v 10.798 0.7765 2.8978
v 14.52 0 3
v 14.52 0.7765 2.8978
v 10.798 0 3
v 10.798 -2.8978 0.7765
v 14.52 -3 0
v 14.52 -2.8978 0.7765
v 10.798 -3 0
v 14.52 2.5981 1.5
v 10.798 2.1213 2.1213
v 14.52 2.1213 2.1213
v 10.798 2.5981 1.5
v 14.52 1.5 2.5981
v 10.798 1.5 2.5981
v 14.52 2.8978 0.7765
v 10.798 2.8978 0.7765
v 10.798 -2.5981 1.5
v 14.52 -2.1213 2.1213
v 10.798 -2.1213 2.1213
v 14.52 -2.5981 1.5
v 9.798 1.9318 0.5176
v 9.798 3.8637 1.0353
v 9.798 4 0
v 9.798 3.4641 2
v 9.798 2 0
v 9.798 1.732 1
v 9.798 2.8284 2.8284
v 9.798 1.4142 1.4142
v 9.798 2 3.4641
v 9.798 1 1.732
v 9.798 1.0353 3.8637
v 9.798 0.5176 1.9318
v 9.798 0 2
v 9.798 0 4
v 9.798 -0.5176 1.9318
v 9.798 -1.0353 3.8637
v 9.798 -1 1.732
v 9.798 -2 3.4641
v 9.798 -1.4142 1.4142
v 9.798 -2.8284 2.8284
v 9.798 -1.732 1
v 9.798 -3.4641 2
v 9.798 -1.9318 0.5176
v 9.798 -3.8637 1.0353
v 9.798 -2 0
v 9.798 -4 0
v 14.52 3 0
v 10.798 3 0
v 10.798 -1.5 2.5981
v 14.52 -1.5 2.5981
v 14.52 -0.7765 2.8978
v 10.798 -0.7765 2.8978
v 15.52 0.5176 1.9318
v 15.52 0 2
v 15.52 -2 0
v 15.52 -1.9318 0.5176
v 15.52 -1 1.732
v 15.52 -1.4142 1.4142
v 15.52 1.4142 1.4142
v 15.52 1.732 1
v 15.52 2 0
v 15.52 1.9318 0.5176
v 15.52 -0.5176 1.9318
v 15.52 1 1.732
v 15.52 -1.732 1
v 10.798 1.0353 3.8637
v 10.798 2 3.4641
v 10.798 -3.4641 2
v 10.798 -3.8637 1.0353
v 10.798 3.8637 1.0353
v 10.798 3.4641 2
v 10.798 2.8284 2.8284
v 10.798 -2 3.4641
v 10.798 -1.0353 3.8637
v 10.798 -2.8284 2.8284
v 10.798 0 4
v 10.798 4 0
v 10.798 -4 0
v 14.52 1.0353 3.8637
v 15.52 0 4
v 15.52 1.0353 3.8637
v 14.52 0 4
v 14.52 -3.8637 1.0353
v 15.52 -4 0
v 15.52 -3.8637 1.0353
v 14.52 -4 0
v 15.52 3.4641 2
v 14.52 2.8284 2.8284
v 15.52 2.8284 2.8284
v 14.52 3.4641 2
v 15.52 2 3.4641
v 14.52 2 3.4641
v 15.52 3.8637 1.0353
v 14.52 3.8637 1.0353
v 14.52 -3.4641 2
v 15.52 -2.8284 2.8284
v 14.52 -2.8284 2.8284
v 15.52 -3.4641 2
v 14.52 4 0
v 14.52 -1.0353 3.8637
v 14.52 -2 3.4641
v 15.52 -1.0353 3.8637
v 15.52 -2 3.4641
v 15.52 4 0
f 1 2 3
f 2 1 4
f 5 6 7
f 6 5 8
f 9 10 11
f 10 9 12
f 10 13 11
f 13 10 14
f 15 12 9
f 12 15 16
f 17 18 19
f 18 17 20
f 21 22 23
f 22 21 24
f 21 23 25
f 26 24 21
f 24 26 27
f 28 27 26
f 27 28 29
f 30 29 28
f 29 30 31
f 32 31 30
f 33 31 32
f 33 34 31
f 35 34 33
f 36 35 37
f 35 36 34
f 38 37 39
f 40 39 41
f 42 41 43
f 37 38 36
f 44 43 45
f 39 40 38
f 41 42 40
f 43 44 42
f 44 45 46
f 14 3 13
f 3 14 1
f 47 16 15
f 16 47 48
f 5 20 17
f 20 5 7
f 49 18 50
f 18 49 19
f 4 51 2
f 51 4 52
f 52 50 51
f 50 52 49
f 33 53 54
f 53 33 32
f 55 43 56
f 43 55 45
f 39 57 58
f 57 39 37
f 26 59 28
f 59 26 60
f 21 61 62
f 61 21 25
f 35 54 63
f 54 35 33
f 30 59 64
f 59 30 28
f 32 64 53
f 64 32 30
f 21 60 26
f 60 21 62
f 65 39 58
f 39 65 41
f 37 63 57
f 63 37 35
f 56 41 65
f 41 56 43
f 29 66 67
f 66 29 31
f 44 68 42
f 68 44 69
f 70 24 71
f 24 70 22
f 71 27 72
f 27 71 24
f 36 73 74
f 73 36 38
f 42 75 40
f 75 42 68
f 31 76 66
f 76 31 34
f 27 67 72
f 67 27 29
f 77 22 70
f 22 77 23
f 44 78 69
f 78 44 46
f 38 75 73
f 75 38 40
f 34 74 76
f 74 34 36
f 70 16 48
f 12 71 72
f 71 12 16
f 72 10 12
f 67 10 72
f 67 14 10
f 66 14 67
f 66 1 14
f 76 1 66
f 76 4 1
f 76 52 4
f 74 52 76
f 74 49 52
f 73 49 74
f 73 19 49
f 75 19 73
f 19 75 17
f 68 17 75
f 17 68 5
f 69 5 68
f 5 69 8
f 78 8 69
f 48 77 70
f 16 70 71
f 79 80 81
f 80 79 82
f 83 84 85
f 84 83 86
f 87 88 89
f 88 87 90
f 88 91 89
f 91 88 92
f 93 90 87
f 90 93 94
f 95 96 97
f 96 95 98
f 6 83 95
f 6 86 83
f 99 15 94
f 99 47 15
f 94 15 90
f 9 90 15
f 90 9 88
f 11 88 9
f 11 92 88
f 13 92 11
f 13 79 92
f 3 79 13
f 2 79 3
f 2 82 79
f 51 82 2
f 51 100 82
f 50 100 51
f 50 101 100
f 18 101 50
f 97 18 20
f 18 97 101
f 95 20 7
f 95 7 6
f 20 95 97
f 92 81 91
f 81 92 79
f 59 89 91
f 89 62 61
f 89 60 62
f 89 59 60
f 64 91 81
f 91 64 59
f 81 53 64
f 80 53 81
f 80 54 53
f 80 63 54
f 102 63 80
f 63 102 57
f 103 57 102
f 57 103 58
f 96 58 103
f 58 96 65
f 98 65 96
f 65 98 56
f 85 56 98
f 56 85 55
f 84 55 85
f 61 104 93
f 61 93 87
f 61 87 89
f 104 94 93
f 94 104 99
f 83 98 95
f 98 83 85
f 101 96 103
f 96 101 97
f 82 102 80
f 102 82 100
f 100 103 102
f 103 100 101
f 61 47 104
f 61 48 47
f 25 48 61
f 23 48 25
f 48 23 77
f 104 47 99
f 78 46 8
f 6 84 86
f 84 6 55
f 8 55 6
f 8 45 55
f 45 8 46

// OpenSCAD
// file: ../build_environments.scad
// build_environments.scad: modules to build level sections
//

module pool(diameter=10.0, wall_height=2.0, step_width=3.0, connections=[])
{
    difference() {
        union() {
        difference() {
            cylinder(h=0.5,r1=diameter+step_width,r2=diameter+step_width,$fn=48);
            translate([0,0,-0.1])
                cylinder(h=0.7,r1=diameter,r2=diameter,$fn=48);
        }
        difference() {
            cylinder(h=wall_height,r1=diameter+step_width+1.0,r2=diameter+step_width+1.0,$fn=48);
            translate([0,0,-0.1])
                cylinder(h=wall_height+0.2,r1=diameter+step_width,r2=diameter+step_width,$fn=48);
        }
        }
    
        for (c = connections)
        {
            rotate([0,90,0]) {
                angle = atan2(c[1],c[0]);
                rotate([-angle,0,0]) {
                    cylinder(h=diameter+5.0,r1=c[2],r2=c[2],$fn=48);
                }
            }
        }
    }
}

module straight(length=10.0, width=2.0, dy1=0.0, dy2=0.0, dz=0.0)
{
    dims = [0, 0, 0, 0, 0, (dz/length)];
    matrix = [
        [ 1, dims[0], dims[1], 0 ],
        [ dims[2], 1, dims[4], 0 ],
        [ dims[5], dims[3], 1, 0 ],
        [ 0, 0, 0, 1 ]
    ];
    multmatrix(matrix)
    difference() {
        translate([dy1,0,0])
        union() {
            rotate([0,90,0]) {
                difference() {
                    cylinder(h=(length-dy1-dy2),r1=width+1.0,r2=width+1.0,$fn=24);
                    translate([0,0,-0.1])
                        cylinder(h=(length-dy1-dy2+0.2),r1=width,r2=width,$fn=24);
                }
                difference() {
                    cylinder(h=1.0,r1=width+2.0,r2=width+2.0,$fn=24);
                    translate([0,0,-0.1])
                        cylinder(h=1.2,r1=width,r2=width,$fn=24);
                }
                translate([0,0,(length-dy1-dy2)-1.0]) {
                    difference() {
                        cylinder(h=1.0,r1=width+2.0,r2=width+2.0,$fn=24);
                        translate([0,0,-0.1])
                            cylinder(h=1.2,r1=width,r2=width,$fn=24);
                    }
                }
            }
        }
        translate([0,0,-(2*width+4.0)/2])
            cube([3*length,3*length,2*width+4.0],center=true);
    }
}

module curve(p0=[0,0], center=[0,0], dir=1, angle=0.0, width=2.0)
{
    radius = sqrt((p0[0]-center[0])*(p0[0]-center[0]) + (p0[1]-center[1])*(p0[1]-center[1]));
    if (dir == 0) {
        difference() {
            rotate([0,0,-90])
            difference() {
                rotate_extrude(angle = angle, convexity = 10, $fn=32)
                    translate([radius, 0, 0])
                        circle(r = width+1.0,$fn=24);
                rotate([0,0,-1.0])
                    rotate_extrude(angle = angle+2.0, convexity = 10, $fn=32)
                        translate([radius, 0, 0])
                            circle(r = width,$fn=24);
            }
            translate([0,0,-(2*width+4.0)/2])
                cube([5*radius,5*radius,2*width+4.0],center=true);
        }
    }
    else {
        difference() {
            rotate([0,0,90])
            difference() {
                rotate_extrude(angle = -angle, convexity = 10, $fn=32)
                    translate([radius, 0, 0])
                        circle(r = width+1.0,$fn=24);
                rotate([0,0,1.0])
                    rotate_extrude(angle = -angle-2.0, convexity = 10, $fn=32)
                        translate([radius, 0, 0])
                            circle(r = width,$fn=24);
            }
            translate([0,0,-(2*width+4.0)/2])
                cube([5*radius,5*radius,2*width+4.0],center=true);
        }
    }

}

// test pool
//pool(diameter=12.0000, wall_height=3.0000, step_width=3.0000, connections=[[0.0000,-26.0000,2.0000], [23.6074,0.0000,2.0000]]);

// test straight, slope
//straight(length=26.0000, width=2.0000, dy1=11.8322, dy2=6.7082, dz=0.0000);
//straight(length=29.1549, width=12.0000, dy1=0.0000, dy2=0.0000, dz=-15.0000);

// test curve
//curve(p0=[23.6074, 0.0000], center=[23.6074, 5.0000], dir=0, angle=60.1011, width=2.0000);
//curve(p0=[33.6426, 12.4219], center=[37.9771, 9.9295], dir=1, angle=120.4627, width=2.0000);
// main file
use <../build_environments.scad>;
straight(length=25.3180, width=2.0000, dy1=9.7980, dy2=9.7980, dz=0.0000);
